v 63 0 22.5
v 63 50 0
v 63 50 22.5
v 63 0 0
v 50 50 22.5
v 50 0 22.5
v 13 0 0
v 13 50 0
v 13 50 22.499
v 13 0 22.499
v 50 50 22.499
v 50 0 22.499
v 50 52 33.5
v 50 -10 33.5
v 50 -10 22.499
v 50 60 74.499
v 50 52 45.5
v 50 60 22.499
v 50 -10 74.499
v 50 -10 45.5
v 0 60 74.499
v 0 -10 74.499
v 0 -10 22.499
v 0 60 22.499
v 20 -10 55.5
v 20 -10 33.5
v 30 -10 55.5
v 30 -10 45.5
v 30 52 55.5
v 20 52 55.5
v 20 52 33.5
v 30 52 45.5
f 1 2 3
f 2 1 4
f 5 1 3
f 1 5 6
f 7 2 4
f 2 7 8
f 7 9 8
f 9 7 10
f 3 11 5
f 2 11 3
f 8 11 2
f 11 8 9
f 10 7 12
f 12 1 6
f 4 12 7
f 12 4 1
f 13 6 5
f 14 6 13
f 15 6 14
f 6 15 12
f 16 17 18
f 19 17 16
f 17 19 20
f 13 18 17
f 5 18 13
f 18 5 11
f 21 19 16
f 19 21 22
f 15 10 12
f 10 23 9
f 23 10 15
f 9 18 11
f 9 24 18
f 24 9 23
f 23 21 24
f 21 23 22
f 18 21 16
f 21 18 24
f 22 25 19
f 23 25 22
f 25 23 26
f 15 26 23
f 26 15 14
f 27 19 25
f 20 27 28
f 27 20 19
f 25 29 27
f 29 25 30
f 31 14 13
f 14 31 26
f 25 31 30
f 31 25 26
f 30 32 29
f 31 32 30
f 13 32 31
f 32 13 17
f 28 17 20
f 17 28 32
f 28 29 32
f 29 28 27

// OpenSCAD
bias = 0.1;

module base() {
    translate([13, 0, 0])
        cube([50, 50, 22.5]);
    translate([0, -10, 22.5 - 0.001])
        cube([50, 70, 52]);
}

module case() {
    difference () {
    cube([30 + 0.001, 62 + 0.001, 22]);
        
    translate([10, 0 - 0.001, 12])
        cube([20, 62 + 0.002, 10]);
    };
}


difference() {
    base();
    translate([20, -10 - 0.001, 33.5])
        case();
}
